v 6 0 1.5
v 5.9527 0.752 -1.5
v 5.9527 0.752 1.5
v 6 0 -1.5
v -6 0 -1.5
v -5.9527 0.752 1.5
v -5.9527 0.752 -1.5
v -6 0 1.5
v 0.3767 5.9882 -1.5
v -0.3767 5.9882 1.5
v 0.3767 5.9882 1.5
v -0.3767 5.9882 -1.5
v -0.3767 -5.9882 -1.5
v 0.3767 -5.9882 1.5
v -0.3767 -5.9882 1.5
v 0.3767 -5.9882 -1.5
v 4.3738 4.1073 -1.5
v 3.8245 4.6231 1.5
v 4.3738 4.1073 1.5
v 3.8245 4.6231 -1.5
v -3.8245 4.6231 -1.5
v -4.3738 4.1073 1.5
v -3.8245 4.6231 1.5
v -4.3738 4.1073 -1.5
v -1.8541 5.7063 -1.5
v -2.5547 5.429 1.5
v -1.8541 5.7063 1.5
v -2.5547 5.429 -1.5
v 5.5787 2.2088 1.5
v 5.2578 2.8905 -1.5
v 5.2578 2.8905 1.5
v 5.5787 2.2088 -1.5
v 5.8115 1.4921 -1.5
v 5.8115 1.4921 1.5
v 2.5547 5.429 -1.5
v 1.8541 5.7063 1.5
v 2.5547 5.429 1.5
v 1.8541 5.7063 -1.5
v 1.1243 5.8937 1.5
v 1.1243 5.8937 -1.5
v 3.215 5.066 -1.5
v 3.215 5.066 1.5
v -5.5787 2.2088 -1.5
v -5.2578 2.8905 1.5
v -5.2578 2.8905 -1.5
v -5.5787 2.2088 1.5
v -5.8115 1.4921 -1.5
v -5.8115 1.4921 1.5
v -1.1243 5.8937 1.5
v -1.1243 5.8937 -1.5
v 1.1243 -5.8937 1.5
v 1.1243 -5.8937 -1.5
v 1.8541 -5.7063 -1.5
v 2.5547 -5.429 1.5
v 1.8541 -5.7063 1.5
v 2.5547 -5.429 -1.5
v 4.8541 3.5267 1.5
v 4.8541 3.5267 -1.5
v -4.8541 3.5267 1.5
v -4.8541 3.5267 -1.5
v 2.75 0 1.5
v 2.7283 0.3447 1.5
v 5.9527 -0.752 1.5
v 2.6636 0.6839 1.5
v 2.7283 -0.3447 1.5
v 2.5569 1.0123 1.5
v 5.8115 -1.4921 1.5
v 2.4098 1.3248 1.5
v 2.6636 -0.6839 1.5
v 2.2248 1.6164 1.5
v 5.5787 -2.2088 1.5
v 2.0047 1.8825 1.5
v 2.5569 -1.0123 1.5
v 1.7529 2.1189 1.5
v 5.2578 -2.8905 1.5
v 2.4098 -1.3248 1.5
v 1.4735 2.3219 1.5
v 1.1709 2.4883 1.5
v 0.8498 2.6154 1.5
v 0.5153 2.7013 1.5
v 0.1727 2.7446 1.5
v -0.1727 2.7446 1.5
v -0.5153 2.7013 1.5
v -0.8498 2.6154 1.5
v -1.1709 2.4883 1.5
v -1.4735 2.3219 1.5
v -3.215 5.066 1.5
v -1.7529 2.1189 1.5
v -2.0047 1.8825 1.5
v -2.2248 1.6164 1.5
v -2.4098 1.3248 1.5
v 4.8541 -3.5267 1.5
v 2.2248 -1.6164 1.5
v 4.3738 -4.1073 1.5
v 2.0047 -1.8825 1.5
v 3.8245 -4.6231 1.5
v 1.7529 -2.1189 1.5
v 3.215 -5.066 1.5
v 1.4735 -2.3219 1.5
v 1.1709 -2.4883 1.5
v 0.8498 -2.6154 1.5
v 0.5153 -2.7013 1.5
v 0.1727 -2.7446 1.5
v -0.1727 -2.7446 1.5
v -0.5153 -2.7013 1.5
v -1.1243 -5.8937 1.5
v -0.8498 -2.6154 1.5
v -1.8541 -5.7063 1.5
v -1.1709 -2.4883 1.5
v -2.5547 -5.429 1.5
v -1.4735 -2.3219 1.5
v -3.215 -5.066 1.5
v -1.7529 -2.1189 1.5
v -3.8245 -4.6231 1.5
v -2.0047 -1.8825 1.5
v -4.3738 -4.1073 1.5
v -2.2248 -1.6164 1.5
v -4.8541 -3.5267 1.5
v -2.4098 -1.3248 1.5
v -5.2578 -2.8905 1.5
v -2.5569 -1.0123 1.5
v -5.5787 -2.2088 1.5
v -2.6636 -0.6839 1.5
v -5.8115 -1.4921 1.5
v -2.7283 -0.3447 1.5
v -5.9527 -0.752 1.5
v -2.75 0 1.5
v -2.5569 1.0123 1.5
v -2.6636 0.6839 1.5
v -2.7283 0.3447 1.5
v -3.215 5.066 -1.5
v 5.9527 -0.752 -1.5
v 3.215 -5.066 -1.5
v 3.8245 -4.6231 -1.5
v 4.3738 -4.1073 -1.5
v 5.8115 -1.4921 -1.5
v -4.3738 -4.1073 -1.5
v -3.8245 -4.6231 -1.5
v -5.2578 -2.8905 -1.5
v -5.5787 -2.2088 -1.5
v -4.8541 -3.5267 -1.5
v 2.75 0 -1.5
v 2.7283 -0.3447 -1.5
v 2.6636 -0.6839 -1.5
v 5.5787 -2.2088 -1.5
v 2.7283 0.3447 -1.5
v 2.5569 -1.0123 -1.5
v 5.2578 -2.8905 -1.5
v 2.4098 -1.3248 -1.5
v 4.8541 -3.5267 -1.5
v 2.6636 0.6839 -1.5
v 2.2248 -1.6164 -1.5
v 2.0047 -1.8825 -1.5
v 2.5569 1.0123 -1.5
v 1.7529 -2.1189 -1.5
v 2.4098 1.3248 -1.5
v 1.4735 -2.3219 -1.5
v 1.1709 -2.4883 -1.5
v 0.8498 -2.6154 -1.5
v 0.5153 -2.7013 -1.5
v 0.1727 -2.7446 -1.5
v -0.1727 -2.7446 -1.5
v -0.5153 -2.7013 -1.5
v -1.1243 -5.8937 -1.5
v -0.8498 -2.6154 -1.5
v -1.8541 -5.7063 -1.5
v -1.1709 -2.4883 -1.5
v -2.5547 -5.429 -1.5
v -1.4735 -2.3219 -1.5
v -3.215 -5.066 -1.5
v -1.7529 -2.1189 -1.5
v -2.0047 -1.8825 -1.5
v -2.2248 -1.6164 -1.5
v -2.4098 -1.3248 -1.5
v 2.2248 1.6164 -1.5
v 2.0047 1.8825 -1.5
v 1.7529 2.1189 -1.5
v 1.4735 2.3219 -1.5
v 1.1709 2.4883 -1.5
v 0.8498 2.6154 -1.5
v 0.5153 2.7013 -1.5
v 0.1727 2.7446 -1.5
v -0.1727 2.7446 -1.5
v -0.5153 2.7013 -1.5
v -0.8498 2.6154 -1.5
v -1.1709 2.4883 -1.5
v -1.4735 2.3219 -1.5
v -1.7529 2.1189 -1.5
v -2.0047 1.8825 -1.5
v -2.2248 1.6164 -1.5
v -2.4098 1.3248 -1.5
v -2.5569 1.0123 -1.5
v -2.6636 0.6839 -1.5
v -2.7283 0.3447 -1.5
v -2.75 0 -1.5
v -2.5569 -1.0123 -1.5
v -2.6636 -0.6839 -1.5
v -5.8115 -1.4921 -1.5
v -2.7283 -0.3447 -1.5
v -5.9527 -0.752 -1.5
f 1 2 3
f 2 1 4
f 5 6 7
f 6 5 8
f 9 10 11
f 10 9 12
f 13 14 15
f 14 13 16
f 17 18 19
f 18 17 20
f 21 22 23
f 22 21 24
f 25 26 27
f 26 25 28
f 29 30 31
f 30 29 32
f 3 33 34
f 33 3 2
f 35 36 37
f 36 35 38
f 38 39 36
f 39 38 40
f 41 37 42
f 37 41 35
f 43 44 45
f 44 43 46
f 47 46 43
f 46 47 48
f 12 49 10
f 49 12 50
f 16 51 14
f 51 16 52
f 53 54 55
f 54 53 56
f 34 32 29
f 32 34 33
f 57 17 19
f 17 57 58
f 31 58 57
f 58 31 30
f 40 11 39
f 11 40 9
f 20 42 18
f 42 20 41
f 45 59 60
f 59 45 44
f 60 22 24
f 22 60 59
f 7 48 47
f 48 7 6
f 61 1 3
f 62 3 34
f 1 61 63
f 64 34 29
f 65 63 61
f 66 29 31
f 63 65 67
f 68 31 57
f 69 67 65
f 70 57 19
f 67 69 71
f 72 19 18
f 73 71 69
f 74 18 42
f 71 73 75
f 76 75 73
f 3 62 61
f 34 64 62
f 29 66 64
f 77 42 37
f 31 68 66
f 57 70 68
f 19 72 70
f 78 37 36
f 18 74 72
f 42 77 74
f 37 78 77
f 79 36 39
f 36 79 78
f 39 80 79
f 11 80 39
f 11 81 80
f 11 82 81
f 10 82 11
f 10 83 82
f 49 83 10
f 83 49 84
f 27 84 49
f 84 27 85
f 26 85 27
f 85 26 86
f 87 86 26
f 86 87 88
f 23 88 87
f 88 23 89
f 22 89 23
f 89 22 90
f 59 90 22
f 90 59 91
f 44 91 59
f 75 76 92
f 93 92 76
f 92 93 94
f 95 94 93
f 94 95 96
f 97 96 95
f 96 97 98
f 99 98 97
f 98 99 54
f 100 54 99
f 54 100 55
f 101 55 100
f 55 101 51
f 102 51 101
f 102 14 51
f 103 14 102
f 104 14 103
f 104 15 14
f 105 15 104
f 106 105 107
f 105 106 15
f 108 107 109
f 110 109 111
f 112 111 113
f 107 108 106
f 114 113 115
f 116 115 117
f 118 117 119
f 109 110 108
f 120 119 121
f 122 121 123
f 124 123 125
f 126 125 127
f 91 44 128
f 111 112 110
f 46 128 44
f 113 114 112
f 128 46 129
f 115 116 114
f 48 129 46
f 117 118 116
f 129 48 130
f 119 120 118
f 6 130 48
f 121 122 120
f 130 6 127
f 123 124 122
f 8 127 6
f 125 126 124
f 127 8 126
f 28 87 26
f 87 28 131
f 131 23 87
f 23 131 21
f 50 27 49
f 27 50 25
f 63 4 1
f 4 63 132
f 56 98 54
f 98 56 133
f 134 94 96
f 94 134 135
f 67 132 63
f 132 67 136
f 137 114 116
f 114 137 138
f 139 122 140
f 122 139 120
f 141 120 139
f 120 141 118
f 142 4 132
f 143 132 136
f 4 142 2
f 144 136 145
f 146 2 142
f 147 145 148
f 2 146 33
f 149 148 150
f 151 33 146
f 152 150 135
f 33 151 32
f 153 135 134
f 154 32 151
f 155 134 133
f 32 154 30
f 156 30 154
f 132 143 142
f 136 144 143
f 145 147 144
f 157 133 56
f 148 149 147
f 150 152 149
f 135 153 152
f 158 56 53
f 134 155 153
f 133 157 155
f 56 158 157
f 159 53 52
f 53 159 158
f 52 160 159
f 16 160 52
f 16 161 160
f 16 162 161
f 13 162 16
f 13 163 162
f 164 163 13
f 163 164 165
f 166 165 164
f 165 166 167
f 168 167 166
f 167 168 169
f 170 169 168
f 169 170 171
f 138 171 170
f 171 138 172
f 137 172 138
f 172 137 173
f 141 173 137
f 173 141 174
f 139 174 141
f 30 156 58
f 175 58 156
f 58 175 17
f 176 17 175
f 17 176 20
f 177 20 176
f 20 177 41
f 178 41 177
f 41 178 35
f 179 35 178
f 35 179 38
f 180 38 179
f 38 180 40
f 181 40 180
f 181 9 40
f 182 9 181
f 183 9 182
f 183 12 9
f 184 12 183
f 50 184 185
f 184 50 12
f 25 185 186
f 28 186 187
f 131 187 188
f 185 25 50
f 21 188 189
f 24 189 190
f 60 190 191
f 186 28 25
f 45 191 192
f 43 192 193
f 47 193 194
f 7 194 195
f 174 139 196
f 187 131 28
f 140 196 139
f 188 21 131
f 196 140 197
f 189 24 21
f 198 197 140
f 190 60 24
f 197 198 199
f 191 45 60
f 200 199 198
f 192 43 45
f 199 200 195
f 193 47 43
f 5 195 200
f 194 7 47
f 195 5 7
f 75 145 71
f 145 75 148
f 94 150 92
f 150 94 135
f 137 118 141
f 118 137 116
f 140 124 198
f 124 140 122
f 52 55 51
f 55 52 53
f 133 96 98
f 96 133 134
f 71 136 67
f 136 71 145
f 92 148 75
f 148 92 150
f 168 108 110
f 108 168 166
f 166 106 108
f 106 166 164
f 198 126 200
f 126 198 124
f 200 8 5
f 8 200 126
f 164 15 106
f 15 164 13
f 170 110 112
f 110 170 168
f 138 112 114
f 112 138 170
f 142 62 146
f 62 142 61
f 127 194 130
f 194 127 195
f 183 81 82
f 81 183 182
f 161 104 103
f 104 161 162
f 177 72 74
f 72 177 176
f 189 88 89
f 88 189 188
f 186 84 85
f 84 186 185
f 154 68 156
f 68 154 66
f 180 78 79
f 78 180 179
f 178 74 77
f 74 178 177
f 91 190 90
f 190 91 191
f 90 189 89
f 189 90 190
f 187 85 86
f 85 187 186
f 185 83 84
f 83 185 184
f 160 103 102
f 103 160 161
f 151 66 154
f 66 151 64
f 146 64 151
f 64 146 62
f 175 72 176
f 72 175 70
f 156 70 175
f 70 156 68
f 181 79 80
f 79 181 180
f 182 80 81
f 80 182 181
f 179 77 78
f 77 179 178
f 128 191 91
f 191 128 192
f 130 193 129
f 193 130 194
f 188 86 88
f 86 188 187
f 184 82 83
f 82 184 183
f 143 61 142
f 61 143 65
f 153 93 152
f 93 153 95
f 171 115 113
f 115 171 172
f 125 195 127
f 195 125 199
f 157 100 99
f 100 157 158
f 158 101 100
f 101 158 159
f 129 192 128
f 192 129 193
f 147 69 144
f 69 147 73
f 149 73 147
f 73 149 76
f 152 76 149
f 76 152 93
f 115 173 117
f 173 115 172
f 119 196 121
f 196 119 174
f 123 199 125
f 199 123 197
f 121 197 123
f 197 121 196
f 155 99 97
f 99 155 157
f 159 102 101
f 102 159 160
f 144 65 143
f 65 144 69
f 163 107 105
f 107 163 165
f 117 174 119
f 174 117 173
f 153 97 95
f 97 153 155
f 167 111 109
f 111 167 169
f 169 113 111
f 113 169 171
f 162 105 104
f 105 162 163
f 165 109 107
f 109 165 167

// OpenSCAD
$fn = 50;


difference() {
	union() {
		translate(v = [0, 0, -1.5000000000]) {
			cylinder(h = 3, r = 6.0000000000);
		}
	}
	union() {
		translate(v = [0, 0, -100.0000000000]) {
			cylinder(h = 200, r = 2.7500000000);
		}
	}
}
